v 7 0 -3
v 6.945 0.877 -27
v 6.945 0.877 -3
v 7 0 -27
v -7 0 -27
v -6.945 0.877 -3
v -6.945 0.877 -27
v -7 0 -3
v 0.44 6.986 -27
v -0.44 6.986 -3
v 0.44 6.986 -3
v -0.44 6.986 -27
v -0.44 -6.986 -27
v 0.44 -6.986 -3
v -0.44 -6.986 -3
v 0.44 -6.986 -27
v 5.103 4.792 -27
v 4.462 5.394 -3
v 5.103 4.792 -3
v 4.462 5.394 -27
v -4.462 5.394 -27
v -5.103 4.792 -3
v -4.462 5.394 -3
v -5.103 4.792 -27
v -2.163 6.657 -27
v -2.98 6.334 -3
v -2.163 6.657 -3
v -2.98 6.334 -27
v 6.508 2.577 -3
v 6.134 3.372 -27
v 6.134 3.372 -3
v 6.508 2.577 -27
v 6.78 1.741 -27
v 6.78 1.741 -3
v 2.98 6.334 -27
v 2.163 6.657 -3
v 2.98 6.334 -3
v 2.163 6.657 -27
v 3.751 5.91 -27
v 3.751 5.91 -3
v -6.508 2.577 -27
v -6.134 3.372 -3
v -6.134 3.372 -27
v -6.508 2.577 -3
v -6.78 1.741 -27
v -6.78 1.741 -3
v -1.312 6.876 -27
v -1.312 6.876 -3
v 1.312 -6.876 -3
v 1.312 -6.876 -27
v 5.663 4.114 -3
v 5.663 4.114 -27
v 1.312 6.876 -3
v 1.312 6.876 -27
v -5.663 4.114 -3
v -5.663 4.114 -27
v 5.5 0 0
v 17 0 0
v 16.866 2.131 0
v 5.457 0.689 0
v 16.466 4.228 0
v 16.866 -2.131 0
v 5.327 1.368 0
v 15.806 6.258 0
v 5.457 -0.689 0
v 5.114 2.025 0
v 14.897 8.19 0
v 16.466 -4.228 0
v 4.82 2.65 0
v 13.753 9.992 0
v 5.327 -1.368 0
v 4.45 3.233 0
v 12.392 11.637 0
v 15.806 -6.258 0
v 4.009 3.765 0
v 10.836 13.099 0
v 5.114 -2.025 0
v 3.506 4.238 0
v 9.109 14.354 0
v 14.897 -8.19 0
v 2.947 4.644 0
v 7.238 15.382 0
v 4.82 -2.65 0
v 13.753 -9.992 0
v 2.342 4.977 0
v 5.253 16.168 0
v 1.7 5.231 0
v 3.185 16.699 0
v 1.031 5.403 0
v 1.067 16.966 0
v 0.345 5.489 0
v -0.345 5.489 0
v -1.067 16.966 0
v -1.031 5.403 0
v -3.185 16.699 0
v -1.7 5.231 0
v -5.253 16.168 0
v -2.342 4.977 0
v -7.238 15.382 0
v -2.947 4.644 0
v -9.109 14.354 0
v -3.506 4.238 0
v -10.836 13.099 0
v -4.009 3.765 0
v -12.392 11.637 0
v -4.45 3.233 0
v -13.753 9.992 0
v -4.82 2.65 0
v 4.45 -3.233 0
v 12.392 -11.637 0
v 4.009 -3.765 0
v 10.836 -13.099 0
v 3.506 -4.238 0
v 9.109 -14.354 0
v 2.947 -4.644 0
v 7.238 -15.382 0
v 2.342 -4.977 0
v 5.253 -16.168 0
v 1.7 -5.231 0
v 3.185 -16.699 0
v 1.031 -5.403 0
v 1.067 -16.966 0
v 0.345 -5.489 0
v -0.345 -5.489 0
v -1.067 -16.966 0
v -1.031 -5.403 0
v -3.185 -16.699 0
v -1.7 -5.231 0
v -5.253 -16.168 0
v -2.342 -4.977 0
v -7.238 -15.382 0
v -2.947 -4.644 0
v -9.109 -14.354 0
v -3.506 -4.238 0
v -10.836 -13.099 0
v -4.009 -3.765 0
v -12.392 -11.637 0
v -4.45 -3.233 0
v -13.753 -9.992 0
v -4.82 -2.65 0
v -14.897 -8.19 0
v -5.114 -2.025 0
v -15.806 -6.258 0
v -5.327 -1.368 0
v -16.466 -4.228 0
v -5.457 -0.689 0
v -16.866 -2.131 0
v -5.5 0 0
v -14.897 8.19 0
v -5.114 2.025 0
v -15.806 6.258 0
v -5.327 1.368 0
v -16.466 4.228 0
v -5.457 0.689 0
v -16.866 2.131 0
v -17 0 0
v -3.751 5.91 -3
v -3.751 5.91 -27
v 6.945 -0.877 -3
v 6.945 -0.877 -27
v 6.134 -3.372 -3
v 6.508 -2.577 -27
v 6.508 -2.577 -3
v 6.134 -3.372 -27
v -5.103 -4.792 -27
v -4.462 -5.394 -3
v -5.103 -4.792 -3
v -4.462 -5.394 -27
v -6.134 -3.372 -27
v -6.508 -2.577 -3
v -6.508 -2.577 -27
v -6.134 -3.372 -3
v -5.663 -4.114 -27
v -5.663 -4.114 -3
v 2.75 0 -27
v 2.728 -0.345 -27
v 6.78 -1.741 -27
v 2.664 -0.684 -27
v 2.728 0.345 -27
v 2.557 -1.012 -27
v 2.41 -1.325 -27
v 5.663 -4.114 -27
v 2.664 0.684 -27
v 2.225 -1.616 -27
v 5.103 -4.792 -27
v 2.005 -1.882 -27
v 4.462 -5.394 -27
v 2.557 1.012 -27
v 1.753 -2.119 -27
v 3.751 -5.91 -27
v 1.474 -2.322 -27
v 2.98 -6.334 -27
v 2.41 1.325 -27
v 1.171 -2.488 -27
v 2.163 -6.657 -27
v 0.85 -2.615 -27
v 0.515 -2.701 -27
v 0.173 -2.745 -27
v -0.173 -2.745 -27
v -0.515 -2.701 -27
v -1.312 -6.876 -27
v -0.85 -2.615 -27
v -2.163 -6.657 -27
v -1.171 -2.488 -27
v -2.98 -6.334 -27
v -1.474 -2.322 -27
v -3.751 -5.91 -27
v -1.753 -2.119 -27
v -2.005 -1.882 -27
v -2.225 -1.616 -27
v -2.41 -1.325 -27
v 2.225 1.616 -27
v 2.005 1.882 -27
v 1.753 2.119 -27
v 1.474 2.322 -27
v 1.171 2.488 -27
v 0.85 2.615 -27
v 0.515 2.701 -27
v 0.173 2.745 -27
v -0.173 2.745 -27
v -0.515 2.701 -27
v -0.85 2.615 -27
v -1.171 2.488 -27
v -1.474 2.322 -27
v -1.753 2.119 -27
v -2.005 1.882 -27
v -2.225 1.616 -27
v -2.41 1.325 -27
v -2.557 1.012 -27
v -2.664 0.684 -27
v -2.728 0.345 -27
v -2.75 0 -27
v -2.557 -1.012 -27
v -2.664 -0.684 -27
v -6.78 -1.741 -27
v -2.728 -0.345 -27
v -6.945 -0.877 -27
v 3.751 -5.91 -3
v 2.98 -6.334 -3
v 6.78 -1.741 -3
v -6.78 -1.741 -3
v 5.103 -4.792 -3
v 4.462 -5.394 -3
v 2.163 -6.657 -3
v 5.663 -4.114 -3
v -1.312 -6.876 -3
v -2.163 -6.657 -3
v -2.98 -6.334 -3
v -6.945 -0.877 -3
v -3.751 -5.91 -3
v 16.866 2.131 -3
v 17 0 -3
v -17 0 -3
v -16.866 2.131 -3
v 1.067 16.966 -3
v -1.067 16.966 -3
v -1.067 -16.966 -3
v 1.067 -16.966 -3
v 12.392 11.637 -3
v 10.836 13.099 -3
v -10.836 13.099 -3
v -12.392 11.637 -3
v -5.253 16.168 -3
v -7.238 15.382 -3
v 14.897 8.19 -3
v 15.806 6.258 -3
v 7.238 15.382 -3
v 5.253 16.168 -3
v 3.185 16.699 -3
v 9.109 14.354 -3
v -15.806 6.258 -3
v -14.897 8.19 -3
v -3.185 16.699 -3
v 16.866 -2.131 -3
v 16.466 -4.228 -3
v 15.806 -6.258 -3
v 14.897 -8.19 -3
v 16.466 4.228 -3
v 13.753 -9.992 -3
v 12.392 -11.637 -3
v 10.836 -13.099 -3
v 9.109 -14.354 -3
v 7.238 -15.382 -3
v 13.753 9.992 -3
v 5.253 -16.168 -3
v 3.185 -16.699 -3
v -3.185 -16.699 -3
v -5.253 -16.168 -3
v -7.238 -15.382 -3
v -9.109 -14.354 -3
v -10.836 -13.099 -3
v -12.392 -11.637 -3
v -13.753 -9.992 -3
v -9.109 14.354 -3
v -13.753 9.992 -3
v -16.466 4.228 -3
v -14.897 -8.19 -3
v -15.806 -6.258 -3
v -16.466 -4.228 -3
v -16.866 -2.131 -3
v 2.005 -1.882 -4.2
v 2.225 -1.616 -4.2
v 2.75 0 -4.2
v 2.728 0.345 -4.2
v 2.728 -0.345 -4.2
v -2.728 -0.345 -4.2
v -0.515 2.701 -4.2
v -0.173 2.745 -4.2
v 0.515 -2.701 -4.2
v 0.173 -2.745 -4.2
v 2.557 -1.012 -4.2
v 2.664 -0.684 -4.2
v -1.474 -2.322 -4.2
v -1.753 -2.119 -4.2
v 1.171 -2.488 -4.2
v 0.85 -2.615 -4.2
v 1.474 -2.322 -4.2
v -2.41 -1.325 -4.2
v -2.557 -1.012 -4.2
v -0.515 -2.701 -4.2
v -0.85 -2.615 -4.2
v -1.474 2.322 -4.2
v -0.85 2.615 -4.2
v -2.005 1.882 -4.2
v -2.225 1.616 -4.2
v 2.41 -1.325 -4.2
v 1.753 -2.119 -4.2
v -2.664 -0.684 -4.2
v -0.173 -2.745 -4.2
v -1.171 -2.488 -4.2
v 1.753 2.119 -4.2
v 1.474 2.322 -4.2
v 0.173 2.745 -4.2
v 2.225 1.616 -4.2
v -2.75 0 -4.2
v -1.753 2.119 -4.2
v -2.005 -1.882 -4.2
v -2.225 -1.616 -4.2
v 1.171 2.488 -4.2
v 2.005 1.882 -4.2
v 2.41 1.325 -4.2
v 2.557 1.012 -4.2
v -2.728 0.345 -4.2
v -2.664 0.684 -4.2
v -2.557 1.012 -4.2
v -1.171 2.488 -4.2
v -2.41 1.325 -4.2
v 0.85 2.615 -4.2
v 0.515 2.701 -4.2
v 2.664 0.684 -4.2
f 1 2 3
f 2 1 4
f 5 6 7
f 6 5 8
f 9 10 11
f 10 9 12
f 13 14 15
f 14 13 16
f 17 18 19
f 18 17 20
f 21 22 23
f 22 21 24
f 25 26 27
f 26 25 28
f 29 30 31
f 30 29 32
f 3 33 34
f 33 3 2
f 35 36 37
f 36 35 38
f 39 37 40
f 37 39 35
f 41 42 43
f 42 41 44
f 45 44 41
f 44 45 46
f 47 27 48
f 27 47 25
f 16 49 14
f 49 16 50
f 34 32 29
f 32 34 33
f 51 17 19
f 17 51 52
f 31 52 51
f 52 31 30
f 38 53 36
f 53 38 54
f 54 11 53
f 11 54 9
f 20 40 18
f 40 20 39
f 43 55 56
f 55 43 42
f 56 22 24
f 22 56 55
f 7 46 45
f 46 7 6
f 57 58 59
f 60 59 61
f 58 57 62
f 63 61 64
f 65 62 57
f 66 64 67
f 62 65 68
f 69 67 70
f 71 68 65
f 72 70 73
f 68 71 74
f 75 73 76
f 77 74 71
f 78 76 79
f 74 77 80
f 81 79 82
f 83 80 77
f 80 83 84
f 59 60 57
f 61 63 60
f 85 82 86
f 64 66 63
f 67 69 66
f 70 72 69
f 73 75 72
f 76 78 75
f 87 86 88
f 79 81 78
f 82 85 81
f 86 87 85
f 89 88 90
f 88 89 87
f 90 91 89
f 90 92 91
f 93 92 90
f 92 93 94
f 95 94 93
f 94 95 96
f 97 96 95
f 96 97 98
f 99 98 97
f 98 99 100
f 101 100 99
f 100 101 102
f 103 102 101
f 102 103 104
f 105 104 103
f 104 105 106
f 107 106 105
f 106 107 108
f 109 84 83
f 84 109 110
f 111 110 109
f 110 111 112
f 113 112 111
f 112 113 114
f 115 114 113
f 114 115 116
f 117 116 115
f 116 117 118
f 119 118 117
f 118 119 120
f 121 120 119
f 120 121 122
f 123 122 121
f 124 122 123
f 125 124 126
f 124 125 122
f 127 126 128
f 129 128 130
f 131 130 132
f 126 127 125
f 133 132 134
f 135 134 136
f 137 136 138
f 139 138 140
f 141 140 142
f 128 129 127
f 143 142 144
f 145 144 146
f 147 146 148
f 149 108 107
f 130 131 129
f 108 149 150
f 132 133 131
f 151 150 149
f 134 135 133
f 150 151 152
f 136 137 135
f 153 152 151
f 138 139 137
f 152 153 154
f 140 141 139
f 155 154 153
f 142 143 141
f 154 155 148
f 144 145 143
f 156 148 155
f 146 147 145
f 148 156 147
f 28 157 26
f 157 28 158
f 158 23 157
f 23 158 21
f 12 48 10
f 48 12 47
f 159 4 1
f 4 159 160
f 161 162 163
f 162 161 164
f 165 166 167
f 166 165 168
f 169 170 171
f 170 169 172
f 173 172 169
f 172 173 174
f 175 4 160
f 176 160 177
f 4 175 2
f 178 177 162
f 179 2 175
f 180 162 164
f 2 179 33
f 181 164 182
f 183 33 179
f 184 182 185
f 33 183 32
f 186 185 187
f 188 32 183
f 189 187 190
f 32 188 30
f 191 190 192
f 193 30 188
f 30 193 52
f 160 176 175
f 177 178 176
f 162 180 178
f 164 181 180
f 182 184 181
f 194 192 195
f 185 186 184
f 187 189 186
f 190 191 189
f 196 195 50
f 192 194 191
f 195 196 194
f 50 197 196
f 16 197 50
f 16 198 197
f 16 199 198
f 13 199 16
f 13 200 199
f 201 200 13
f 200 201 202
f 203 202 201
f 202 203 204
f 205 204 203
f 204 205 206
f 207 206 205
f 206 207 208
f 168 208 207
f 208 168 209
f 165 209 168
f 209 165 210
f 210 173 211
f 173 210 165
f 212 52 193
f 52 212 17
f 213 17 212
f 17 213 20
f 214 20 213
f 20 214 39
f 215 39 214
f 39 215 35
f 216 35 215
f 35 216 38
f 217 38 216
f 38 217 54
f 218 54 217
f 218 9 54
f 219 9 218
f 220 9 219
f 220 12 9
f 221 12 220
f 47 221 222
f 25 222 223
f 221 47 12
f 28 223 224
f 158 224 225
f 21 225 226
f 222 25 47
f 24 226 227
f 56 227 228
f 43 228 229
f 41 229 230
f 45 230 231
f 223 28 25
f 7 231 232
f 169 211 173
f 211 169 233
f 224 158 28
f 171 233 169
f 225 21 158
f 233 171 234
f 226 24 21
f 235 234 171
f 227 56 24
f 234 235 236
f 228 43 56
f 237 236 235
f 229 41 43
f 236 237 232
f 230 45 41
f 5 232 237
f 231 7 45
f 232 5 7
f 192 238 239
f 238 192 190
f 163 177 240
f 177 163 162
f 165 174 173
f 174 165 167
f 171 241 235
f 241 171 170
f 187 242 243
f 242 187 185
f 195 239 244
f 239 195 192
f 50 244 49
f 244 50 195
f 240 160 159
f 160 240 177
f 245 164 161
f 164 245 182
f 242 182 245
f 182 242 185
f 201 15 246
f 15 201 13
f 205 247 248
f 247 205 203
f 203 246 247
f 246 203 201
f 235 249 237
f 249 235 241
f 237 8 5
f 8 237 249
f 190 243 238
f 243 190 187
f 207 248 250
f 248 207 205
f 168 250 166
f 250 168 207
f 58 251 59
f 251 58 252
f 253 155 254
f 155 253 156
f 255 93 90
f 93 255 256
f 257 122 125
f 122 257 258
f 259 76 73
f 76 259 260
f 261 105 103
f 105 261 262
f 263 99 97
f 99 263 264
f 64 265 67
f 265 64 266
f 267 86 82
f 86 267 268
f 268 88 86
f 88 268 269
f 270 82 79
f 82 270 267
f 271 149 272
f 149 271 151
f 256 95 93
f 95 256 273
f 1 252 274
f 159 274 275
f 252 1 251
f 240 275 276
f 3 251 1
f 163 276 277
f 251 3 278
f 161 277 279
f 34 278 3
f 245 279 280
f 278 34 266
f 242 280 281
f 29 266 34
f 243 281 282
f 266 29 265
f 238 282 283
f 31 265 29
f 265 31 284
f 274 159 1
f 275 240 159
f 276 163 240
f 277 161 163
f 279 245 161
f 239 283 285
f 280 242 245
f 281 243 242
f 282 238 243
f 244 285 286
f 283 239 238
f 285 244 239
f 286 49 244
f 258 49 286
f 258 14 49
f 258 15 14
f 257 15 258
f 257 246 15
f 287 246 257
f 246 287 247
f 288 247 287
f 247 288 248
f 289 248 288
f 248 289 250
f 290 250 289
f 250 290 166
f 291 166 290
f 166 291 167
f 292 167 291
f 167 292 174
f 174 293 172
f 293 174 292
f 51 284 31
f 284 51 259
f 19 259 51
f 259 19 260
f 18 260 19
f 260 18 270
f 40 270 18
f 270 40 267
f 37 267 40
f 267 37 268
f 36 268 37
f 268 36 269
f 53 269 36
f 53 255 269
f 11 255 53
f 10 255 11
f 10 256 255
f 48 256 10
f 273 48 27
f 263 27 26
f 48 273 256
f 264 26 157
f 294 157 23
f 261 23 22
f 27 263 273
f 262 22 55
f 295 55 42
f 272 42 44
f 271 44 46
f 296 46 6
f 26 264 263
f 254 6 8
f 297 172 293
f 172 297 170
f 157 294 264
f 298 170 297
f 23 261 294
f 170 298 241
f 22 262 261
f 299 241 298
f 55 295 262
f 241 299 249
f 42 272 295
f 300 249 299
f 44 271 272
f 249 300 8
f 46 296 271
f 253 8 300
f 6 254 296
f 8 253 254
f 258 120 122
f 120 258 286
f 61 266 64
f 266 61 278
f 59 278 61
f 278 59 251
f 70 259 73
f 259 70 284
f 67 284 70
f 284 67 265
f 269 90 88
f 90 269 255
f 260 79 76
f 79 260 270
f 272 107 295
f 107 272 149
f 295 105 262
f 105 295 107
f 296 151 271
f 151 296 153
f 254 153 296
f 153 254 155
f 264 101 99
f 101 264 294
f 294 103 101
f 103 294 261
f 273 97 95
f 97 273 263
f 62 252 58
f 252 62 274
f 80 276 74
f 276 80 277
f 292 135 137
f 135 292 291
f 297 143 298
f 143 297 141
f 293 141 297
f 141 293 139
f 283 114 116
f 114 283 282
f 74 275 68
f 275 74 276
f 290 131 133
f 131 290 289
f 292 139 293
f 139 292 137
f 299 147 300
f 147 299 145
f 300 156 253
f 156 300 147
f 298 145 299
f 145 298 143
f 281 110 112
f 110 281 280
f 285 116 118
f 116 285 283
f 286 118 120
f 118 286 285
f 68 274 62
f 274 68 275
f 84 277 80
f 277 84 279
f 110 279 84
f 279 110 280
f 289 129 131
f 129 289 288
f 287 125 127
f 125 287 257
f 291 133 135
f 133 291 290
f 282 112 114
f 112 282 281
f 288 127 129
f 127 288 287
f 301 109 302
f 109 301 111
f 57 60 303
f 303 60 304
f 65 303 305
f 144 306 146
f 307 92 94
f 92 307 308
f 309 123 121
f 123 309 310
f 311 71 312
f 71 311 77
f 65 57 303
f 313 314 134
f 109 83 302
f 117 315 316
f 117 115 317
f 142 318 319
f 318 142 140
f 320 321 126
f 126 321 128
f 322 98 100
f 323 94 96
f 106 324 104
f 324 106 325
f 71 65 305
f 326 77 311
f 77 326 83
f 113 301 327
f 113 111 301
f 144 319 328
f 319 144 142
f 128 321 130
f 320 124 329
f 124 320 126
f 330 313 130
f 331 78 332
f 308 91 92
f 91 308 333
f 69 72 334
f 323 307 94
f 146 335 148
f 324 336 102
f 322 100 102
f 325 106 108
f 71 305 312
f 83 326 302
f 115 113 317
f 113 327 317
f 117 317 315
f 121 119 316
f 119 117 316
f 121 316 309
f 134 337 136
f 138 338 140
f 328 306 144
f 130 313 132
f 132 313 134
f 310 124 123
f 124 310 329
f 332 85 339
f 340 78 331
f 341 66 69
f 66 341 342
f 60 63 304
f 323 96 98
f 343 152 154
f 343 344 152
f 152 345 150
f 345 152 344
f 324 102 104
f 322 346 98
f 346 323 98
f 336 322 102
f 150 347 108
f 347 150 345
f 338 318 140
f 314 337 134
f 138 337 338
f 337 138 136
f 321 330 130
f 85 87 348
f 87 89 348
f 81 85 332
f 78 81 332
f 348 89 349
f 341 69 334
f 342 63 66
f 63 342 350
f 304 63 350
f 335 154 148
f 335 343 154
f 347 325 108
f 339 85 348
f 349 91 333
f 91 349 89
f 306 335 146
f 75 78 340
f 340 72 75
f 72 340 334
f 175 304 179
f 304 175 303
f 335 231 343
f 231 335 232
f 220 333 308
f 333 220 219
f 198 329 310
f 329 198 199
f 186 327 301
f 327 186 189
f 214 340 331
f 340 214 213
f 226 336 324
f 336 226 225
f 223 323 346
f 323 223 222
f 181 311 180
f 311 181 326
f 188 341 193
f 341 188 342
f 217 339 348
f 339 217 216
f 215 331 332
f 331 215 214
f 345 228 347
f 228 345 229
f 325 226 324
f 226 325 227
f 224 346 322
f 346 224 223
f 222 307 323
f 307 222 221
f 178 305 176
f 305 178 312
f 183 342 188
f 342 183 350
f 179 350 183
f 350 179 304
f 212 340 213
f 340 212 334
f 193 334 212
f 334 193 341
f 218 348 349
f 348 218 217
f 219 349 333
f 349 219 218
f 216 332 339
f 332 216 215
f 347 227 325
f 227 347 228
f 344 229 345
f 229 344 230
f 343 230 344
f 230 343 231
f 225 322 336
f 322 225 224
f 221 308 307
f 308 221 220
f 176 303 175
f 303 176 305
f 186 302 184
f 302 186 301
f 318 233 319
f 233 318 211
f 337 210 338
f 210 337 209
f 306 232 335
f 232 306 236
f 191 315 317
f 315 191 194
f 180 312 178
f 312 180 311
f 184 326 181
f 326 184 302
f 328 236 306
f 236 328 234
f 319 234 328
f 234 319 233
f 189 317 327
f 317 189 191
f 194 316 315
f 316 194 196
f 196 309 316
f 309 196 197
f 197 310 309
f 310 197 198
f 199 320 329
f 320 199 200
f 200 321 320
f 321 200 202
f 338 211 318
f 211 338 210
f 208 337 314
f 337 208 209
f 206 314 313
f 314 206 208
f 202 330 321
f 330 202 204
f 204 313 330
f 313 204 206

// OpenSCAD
$fn = 50;


difference() {
	union() {
		translate(v = [0, 0, -27.0000000000]) {
			cylinder(h = 27, r = 7.0000000000);
		}
		translate(v = [0, 0, -3.0000000000]) {
			cylinder(h = 3, r = 17.0000000000);
		}
	}
	union() {
		translate(v = [0, 0, 0]) {
			rotate(a = [0, 0, 0]) {
				difference() {
					union() {
						#translate(v = [0, 0, -27.0000000000]) {
							cylinder(h = 27, r = 2.2500000000);
						}
						#translate(v = [0, 0, -4.2000000000]) {
							cylinder(h = 4.2000000000, r1 = 2.7500000000, r2 = 5.5000000000);
						}
						#translate(v = [0, 0, -27.0000000000]) {
							cylinder(h = 27, r = 2.7500000000);
						}
						#translate(v = [0, 0, -27.0000000000]) {
							cylinder(h = 27, r = 2.2500000000);
						}
					}
					union();
				}
			}
		}
	}
}
